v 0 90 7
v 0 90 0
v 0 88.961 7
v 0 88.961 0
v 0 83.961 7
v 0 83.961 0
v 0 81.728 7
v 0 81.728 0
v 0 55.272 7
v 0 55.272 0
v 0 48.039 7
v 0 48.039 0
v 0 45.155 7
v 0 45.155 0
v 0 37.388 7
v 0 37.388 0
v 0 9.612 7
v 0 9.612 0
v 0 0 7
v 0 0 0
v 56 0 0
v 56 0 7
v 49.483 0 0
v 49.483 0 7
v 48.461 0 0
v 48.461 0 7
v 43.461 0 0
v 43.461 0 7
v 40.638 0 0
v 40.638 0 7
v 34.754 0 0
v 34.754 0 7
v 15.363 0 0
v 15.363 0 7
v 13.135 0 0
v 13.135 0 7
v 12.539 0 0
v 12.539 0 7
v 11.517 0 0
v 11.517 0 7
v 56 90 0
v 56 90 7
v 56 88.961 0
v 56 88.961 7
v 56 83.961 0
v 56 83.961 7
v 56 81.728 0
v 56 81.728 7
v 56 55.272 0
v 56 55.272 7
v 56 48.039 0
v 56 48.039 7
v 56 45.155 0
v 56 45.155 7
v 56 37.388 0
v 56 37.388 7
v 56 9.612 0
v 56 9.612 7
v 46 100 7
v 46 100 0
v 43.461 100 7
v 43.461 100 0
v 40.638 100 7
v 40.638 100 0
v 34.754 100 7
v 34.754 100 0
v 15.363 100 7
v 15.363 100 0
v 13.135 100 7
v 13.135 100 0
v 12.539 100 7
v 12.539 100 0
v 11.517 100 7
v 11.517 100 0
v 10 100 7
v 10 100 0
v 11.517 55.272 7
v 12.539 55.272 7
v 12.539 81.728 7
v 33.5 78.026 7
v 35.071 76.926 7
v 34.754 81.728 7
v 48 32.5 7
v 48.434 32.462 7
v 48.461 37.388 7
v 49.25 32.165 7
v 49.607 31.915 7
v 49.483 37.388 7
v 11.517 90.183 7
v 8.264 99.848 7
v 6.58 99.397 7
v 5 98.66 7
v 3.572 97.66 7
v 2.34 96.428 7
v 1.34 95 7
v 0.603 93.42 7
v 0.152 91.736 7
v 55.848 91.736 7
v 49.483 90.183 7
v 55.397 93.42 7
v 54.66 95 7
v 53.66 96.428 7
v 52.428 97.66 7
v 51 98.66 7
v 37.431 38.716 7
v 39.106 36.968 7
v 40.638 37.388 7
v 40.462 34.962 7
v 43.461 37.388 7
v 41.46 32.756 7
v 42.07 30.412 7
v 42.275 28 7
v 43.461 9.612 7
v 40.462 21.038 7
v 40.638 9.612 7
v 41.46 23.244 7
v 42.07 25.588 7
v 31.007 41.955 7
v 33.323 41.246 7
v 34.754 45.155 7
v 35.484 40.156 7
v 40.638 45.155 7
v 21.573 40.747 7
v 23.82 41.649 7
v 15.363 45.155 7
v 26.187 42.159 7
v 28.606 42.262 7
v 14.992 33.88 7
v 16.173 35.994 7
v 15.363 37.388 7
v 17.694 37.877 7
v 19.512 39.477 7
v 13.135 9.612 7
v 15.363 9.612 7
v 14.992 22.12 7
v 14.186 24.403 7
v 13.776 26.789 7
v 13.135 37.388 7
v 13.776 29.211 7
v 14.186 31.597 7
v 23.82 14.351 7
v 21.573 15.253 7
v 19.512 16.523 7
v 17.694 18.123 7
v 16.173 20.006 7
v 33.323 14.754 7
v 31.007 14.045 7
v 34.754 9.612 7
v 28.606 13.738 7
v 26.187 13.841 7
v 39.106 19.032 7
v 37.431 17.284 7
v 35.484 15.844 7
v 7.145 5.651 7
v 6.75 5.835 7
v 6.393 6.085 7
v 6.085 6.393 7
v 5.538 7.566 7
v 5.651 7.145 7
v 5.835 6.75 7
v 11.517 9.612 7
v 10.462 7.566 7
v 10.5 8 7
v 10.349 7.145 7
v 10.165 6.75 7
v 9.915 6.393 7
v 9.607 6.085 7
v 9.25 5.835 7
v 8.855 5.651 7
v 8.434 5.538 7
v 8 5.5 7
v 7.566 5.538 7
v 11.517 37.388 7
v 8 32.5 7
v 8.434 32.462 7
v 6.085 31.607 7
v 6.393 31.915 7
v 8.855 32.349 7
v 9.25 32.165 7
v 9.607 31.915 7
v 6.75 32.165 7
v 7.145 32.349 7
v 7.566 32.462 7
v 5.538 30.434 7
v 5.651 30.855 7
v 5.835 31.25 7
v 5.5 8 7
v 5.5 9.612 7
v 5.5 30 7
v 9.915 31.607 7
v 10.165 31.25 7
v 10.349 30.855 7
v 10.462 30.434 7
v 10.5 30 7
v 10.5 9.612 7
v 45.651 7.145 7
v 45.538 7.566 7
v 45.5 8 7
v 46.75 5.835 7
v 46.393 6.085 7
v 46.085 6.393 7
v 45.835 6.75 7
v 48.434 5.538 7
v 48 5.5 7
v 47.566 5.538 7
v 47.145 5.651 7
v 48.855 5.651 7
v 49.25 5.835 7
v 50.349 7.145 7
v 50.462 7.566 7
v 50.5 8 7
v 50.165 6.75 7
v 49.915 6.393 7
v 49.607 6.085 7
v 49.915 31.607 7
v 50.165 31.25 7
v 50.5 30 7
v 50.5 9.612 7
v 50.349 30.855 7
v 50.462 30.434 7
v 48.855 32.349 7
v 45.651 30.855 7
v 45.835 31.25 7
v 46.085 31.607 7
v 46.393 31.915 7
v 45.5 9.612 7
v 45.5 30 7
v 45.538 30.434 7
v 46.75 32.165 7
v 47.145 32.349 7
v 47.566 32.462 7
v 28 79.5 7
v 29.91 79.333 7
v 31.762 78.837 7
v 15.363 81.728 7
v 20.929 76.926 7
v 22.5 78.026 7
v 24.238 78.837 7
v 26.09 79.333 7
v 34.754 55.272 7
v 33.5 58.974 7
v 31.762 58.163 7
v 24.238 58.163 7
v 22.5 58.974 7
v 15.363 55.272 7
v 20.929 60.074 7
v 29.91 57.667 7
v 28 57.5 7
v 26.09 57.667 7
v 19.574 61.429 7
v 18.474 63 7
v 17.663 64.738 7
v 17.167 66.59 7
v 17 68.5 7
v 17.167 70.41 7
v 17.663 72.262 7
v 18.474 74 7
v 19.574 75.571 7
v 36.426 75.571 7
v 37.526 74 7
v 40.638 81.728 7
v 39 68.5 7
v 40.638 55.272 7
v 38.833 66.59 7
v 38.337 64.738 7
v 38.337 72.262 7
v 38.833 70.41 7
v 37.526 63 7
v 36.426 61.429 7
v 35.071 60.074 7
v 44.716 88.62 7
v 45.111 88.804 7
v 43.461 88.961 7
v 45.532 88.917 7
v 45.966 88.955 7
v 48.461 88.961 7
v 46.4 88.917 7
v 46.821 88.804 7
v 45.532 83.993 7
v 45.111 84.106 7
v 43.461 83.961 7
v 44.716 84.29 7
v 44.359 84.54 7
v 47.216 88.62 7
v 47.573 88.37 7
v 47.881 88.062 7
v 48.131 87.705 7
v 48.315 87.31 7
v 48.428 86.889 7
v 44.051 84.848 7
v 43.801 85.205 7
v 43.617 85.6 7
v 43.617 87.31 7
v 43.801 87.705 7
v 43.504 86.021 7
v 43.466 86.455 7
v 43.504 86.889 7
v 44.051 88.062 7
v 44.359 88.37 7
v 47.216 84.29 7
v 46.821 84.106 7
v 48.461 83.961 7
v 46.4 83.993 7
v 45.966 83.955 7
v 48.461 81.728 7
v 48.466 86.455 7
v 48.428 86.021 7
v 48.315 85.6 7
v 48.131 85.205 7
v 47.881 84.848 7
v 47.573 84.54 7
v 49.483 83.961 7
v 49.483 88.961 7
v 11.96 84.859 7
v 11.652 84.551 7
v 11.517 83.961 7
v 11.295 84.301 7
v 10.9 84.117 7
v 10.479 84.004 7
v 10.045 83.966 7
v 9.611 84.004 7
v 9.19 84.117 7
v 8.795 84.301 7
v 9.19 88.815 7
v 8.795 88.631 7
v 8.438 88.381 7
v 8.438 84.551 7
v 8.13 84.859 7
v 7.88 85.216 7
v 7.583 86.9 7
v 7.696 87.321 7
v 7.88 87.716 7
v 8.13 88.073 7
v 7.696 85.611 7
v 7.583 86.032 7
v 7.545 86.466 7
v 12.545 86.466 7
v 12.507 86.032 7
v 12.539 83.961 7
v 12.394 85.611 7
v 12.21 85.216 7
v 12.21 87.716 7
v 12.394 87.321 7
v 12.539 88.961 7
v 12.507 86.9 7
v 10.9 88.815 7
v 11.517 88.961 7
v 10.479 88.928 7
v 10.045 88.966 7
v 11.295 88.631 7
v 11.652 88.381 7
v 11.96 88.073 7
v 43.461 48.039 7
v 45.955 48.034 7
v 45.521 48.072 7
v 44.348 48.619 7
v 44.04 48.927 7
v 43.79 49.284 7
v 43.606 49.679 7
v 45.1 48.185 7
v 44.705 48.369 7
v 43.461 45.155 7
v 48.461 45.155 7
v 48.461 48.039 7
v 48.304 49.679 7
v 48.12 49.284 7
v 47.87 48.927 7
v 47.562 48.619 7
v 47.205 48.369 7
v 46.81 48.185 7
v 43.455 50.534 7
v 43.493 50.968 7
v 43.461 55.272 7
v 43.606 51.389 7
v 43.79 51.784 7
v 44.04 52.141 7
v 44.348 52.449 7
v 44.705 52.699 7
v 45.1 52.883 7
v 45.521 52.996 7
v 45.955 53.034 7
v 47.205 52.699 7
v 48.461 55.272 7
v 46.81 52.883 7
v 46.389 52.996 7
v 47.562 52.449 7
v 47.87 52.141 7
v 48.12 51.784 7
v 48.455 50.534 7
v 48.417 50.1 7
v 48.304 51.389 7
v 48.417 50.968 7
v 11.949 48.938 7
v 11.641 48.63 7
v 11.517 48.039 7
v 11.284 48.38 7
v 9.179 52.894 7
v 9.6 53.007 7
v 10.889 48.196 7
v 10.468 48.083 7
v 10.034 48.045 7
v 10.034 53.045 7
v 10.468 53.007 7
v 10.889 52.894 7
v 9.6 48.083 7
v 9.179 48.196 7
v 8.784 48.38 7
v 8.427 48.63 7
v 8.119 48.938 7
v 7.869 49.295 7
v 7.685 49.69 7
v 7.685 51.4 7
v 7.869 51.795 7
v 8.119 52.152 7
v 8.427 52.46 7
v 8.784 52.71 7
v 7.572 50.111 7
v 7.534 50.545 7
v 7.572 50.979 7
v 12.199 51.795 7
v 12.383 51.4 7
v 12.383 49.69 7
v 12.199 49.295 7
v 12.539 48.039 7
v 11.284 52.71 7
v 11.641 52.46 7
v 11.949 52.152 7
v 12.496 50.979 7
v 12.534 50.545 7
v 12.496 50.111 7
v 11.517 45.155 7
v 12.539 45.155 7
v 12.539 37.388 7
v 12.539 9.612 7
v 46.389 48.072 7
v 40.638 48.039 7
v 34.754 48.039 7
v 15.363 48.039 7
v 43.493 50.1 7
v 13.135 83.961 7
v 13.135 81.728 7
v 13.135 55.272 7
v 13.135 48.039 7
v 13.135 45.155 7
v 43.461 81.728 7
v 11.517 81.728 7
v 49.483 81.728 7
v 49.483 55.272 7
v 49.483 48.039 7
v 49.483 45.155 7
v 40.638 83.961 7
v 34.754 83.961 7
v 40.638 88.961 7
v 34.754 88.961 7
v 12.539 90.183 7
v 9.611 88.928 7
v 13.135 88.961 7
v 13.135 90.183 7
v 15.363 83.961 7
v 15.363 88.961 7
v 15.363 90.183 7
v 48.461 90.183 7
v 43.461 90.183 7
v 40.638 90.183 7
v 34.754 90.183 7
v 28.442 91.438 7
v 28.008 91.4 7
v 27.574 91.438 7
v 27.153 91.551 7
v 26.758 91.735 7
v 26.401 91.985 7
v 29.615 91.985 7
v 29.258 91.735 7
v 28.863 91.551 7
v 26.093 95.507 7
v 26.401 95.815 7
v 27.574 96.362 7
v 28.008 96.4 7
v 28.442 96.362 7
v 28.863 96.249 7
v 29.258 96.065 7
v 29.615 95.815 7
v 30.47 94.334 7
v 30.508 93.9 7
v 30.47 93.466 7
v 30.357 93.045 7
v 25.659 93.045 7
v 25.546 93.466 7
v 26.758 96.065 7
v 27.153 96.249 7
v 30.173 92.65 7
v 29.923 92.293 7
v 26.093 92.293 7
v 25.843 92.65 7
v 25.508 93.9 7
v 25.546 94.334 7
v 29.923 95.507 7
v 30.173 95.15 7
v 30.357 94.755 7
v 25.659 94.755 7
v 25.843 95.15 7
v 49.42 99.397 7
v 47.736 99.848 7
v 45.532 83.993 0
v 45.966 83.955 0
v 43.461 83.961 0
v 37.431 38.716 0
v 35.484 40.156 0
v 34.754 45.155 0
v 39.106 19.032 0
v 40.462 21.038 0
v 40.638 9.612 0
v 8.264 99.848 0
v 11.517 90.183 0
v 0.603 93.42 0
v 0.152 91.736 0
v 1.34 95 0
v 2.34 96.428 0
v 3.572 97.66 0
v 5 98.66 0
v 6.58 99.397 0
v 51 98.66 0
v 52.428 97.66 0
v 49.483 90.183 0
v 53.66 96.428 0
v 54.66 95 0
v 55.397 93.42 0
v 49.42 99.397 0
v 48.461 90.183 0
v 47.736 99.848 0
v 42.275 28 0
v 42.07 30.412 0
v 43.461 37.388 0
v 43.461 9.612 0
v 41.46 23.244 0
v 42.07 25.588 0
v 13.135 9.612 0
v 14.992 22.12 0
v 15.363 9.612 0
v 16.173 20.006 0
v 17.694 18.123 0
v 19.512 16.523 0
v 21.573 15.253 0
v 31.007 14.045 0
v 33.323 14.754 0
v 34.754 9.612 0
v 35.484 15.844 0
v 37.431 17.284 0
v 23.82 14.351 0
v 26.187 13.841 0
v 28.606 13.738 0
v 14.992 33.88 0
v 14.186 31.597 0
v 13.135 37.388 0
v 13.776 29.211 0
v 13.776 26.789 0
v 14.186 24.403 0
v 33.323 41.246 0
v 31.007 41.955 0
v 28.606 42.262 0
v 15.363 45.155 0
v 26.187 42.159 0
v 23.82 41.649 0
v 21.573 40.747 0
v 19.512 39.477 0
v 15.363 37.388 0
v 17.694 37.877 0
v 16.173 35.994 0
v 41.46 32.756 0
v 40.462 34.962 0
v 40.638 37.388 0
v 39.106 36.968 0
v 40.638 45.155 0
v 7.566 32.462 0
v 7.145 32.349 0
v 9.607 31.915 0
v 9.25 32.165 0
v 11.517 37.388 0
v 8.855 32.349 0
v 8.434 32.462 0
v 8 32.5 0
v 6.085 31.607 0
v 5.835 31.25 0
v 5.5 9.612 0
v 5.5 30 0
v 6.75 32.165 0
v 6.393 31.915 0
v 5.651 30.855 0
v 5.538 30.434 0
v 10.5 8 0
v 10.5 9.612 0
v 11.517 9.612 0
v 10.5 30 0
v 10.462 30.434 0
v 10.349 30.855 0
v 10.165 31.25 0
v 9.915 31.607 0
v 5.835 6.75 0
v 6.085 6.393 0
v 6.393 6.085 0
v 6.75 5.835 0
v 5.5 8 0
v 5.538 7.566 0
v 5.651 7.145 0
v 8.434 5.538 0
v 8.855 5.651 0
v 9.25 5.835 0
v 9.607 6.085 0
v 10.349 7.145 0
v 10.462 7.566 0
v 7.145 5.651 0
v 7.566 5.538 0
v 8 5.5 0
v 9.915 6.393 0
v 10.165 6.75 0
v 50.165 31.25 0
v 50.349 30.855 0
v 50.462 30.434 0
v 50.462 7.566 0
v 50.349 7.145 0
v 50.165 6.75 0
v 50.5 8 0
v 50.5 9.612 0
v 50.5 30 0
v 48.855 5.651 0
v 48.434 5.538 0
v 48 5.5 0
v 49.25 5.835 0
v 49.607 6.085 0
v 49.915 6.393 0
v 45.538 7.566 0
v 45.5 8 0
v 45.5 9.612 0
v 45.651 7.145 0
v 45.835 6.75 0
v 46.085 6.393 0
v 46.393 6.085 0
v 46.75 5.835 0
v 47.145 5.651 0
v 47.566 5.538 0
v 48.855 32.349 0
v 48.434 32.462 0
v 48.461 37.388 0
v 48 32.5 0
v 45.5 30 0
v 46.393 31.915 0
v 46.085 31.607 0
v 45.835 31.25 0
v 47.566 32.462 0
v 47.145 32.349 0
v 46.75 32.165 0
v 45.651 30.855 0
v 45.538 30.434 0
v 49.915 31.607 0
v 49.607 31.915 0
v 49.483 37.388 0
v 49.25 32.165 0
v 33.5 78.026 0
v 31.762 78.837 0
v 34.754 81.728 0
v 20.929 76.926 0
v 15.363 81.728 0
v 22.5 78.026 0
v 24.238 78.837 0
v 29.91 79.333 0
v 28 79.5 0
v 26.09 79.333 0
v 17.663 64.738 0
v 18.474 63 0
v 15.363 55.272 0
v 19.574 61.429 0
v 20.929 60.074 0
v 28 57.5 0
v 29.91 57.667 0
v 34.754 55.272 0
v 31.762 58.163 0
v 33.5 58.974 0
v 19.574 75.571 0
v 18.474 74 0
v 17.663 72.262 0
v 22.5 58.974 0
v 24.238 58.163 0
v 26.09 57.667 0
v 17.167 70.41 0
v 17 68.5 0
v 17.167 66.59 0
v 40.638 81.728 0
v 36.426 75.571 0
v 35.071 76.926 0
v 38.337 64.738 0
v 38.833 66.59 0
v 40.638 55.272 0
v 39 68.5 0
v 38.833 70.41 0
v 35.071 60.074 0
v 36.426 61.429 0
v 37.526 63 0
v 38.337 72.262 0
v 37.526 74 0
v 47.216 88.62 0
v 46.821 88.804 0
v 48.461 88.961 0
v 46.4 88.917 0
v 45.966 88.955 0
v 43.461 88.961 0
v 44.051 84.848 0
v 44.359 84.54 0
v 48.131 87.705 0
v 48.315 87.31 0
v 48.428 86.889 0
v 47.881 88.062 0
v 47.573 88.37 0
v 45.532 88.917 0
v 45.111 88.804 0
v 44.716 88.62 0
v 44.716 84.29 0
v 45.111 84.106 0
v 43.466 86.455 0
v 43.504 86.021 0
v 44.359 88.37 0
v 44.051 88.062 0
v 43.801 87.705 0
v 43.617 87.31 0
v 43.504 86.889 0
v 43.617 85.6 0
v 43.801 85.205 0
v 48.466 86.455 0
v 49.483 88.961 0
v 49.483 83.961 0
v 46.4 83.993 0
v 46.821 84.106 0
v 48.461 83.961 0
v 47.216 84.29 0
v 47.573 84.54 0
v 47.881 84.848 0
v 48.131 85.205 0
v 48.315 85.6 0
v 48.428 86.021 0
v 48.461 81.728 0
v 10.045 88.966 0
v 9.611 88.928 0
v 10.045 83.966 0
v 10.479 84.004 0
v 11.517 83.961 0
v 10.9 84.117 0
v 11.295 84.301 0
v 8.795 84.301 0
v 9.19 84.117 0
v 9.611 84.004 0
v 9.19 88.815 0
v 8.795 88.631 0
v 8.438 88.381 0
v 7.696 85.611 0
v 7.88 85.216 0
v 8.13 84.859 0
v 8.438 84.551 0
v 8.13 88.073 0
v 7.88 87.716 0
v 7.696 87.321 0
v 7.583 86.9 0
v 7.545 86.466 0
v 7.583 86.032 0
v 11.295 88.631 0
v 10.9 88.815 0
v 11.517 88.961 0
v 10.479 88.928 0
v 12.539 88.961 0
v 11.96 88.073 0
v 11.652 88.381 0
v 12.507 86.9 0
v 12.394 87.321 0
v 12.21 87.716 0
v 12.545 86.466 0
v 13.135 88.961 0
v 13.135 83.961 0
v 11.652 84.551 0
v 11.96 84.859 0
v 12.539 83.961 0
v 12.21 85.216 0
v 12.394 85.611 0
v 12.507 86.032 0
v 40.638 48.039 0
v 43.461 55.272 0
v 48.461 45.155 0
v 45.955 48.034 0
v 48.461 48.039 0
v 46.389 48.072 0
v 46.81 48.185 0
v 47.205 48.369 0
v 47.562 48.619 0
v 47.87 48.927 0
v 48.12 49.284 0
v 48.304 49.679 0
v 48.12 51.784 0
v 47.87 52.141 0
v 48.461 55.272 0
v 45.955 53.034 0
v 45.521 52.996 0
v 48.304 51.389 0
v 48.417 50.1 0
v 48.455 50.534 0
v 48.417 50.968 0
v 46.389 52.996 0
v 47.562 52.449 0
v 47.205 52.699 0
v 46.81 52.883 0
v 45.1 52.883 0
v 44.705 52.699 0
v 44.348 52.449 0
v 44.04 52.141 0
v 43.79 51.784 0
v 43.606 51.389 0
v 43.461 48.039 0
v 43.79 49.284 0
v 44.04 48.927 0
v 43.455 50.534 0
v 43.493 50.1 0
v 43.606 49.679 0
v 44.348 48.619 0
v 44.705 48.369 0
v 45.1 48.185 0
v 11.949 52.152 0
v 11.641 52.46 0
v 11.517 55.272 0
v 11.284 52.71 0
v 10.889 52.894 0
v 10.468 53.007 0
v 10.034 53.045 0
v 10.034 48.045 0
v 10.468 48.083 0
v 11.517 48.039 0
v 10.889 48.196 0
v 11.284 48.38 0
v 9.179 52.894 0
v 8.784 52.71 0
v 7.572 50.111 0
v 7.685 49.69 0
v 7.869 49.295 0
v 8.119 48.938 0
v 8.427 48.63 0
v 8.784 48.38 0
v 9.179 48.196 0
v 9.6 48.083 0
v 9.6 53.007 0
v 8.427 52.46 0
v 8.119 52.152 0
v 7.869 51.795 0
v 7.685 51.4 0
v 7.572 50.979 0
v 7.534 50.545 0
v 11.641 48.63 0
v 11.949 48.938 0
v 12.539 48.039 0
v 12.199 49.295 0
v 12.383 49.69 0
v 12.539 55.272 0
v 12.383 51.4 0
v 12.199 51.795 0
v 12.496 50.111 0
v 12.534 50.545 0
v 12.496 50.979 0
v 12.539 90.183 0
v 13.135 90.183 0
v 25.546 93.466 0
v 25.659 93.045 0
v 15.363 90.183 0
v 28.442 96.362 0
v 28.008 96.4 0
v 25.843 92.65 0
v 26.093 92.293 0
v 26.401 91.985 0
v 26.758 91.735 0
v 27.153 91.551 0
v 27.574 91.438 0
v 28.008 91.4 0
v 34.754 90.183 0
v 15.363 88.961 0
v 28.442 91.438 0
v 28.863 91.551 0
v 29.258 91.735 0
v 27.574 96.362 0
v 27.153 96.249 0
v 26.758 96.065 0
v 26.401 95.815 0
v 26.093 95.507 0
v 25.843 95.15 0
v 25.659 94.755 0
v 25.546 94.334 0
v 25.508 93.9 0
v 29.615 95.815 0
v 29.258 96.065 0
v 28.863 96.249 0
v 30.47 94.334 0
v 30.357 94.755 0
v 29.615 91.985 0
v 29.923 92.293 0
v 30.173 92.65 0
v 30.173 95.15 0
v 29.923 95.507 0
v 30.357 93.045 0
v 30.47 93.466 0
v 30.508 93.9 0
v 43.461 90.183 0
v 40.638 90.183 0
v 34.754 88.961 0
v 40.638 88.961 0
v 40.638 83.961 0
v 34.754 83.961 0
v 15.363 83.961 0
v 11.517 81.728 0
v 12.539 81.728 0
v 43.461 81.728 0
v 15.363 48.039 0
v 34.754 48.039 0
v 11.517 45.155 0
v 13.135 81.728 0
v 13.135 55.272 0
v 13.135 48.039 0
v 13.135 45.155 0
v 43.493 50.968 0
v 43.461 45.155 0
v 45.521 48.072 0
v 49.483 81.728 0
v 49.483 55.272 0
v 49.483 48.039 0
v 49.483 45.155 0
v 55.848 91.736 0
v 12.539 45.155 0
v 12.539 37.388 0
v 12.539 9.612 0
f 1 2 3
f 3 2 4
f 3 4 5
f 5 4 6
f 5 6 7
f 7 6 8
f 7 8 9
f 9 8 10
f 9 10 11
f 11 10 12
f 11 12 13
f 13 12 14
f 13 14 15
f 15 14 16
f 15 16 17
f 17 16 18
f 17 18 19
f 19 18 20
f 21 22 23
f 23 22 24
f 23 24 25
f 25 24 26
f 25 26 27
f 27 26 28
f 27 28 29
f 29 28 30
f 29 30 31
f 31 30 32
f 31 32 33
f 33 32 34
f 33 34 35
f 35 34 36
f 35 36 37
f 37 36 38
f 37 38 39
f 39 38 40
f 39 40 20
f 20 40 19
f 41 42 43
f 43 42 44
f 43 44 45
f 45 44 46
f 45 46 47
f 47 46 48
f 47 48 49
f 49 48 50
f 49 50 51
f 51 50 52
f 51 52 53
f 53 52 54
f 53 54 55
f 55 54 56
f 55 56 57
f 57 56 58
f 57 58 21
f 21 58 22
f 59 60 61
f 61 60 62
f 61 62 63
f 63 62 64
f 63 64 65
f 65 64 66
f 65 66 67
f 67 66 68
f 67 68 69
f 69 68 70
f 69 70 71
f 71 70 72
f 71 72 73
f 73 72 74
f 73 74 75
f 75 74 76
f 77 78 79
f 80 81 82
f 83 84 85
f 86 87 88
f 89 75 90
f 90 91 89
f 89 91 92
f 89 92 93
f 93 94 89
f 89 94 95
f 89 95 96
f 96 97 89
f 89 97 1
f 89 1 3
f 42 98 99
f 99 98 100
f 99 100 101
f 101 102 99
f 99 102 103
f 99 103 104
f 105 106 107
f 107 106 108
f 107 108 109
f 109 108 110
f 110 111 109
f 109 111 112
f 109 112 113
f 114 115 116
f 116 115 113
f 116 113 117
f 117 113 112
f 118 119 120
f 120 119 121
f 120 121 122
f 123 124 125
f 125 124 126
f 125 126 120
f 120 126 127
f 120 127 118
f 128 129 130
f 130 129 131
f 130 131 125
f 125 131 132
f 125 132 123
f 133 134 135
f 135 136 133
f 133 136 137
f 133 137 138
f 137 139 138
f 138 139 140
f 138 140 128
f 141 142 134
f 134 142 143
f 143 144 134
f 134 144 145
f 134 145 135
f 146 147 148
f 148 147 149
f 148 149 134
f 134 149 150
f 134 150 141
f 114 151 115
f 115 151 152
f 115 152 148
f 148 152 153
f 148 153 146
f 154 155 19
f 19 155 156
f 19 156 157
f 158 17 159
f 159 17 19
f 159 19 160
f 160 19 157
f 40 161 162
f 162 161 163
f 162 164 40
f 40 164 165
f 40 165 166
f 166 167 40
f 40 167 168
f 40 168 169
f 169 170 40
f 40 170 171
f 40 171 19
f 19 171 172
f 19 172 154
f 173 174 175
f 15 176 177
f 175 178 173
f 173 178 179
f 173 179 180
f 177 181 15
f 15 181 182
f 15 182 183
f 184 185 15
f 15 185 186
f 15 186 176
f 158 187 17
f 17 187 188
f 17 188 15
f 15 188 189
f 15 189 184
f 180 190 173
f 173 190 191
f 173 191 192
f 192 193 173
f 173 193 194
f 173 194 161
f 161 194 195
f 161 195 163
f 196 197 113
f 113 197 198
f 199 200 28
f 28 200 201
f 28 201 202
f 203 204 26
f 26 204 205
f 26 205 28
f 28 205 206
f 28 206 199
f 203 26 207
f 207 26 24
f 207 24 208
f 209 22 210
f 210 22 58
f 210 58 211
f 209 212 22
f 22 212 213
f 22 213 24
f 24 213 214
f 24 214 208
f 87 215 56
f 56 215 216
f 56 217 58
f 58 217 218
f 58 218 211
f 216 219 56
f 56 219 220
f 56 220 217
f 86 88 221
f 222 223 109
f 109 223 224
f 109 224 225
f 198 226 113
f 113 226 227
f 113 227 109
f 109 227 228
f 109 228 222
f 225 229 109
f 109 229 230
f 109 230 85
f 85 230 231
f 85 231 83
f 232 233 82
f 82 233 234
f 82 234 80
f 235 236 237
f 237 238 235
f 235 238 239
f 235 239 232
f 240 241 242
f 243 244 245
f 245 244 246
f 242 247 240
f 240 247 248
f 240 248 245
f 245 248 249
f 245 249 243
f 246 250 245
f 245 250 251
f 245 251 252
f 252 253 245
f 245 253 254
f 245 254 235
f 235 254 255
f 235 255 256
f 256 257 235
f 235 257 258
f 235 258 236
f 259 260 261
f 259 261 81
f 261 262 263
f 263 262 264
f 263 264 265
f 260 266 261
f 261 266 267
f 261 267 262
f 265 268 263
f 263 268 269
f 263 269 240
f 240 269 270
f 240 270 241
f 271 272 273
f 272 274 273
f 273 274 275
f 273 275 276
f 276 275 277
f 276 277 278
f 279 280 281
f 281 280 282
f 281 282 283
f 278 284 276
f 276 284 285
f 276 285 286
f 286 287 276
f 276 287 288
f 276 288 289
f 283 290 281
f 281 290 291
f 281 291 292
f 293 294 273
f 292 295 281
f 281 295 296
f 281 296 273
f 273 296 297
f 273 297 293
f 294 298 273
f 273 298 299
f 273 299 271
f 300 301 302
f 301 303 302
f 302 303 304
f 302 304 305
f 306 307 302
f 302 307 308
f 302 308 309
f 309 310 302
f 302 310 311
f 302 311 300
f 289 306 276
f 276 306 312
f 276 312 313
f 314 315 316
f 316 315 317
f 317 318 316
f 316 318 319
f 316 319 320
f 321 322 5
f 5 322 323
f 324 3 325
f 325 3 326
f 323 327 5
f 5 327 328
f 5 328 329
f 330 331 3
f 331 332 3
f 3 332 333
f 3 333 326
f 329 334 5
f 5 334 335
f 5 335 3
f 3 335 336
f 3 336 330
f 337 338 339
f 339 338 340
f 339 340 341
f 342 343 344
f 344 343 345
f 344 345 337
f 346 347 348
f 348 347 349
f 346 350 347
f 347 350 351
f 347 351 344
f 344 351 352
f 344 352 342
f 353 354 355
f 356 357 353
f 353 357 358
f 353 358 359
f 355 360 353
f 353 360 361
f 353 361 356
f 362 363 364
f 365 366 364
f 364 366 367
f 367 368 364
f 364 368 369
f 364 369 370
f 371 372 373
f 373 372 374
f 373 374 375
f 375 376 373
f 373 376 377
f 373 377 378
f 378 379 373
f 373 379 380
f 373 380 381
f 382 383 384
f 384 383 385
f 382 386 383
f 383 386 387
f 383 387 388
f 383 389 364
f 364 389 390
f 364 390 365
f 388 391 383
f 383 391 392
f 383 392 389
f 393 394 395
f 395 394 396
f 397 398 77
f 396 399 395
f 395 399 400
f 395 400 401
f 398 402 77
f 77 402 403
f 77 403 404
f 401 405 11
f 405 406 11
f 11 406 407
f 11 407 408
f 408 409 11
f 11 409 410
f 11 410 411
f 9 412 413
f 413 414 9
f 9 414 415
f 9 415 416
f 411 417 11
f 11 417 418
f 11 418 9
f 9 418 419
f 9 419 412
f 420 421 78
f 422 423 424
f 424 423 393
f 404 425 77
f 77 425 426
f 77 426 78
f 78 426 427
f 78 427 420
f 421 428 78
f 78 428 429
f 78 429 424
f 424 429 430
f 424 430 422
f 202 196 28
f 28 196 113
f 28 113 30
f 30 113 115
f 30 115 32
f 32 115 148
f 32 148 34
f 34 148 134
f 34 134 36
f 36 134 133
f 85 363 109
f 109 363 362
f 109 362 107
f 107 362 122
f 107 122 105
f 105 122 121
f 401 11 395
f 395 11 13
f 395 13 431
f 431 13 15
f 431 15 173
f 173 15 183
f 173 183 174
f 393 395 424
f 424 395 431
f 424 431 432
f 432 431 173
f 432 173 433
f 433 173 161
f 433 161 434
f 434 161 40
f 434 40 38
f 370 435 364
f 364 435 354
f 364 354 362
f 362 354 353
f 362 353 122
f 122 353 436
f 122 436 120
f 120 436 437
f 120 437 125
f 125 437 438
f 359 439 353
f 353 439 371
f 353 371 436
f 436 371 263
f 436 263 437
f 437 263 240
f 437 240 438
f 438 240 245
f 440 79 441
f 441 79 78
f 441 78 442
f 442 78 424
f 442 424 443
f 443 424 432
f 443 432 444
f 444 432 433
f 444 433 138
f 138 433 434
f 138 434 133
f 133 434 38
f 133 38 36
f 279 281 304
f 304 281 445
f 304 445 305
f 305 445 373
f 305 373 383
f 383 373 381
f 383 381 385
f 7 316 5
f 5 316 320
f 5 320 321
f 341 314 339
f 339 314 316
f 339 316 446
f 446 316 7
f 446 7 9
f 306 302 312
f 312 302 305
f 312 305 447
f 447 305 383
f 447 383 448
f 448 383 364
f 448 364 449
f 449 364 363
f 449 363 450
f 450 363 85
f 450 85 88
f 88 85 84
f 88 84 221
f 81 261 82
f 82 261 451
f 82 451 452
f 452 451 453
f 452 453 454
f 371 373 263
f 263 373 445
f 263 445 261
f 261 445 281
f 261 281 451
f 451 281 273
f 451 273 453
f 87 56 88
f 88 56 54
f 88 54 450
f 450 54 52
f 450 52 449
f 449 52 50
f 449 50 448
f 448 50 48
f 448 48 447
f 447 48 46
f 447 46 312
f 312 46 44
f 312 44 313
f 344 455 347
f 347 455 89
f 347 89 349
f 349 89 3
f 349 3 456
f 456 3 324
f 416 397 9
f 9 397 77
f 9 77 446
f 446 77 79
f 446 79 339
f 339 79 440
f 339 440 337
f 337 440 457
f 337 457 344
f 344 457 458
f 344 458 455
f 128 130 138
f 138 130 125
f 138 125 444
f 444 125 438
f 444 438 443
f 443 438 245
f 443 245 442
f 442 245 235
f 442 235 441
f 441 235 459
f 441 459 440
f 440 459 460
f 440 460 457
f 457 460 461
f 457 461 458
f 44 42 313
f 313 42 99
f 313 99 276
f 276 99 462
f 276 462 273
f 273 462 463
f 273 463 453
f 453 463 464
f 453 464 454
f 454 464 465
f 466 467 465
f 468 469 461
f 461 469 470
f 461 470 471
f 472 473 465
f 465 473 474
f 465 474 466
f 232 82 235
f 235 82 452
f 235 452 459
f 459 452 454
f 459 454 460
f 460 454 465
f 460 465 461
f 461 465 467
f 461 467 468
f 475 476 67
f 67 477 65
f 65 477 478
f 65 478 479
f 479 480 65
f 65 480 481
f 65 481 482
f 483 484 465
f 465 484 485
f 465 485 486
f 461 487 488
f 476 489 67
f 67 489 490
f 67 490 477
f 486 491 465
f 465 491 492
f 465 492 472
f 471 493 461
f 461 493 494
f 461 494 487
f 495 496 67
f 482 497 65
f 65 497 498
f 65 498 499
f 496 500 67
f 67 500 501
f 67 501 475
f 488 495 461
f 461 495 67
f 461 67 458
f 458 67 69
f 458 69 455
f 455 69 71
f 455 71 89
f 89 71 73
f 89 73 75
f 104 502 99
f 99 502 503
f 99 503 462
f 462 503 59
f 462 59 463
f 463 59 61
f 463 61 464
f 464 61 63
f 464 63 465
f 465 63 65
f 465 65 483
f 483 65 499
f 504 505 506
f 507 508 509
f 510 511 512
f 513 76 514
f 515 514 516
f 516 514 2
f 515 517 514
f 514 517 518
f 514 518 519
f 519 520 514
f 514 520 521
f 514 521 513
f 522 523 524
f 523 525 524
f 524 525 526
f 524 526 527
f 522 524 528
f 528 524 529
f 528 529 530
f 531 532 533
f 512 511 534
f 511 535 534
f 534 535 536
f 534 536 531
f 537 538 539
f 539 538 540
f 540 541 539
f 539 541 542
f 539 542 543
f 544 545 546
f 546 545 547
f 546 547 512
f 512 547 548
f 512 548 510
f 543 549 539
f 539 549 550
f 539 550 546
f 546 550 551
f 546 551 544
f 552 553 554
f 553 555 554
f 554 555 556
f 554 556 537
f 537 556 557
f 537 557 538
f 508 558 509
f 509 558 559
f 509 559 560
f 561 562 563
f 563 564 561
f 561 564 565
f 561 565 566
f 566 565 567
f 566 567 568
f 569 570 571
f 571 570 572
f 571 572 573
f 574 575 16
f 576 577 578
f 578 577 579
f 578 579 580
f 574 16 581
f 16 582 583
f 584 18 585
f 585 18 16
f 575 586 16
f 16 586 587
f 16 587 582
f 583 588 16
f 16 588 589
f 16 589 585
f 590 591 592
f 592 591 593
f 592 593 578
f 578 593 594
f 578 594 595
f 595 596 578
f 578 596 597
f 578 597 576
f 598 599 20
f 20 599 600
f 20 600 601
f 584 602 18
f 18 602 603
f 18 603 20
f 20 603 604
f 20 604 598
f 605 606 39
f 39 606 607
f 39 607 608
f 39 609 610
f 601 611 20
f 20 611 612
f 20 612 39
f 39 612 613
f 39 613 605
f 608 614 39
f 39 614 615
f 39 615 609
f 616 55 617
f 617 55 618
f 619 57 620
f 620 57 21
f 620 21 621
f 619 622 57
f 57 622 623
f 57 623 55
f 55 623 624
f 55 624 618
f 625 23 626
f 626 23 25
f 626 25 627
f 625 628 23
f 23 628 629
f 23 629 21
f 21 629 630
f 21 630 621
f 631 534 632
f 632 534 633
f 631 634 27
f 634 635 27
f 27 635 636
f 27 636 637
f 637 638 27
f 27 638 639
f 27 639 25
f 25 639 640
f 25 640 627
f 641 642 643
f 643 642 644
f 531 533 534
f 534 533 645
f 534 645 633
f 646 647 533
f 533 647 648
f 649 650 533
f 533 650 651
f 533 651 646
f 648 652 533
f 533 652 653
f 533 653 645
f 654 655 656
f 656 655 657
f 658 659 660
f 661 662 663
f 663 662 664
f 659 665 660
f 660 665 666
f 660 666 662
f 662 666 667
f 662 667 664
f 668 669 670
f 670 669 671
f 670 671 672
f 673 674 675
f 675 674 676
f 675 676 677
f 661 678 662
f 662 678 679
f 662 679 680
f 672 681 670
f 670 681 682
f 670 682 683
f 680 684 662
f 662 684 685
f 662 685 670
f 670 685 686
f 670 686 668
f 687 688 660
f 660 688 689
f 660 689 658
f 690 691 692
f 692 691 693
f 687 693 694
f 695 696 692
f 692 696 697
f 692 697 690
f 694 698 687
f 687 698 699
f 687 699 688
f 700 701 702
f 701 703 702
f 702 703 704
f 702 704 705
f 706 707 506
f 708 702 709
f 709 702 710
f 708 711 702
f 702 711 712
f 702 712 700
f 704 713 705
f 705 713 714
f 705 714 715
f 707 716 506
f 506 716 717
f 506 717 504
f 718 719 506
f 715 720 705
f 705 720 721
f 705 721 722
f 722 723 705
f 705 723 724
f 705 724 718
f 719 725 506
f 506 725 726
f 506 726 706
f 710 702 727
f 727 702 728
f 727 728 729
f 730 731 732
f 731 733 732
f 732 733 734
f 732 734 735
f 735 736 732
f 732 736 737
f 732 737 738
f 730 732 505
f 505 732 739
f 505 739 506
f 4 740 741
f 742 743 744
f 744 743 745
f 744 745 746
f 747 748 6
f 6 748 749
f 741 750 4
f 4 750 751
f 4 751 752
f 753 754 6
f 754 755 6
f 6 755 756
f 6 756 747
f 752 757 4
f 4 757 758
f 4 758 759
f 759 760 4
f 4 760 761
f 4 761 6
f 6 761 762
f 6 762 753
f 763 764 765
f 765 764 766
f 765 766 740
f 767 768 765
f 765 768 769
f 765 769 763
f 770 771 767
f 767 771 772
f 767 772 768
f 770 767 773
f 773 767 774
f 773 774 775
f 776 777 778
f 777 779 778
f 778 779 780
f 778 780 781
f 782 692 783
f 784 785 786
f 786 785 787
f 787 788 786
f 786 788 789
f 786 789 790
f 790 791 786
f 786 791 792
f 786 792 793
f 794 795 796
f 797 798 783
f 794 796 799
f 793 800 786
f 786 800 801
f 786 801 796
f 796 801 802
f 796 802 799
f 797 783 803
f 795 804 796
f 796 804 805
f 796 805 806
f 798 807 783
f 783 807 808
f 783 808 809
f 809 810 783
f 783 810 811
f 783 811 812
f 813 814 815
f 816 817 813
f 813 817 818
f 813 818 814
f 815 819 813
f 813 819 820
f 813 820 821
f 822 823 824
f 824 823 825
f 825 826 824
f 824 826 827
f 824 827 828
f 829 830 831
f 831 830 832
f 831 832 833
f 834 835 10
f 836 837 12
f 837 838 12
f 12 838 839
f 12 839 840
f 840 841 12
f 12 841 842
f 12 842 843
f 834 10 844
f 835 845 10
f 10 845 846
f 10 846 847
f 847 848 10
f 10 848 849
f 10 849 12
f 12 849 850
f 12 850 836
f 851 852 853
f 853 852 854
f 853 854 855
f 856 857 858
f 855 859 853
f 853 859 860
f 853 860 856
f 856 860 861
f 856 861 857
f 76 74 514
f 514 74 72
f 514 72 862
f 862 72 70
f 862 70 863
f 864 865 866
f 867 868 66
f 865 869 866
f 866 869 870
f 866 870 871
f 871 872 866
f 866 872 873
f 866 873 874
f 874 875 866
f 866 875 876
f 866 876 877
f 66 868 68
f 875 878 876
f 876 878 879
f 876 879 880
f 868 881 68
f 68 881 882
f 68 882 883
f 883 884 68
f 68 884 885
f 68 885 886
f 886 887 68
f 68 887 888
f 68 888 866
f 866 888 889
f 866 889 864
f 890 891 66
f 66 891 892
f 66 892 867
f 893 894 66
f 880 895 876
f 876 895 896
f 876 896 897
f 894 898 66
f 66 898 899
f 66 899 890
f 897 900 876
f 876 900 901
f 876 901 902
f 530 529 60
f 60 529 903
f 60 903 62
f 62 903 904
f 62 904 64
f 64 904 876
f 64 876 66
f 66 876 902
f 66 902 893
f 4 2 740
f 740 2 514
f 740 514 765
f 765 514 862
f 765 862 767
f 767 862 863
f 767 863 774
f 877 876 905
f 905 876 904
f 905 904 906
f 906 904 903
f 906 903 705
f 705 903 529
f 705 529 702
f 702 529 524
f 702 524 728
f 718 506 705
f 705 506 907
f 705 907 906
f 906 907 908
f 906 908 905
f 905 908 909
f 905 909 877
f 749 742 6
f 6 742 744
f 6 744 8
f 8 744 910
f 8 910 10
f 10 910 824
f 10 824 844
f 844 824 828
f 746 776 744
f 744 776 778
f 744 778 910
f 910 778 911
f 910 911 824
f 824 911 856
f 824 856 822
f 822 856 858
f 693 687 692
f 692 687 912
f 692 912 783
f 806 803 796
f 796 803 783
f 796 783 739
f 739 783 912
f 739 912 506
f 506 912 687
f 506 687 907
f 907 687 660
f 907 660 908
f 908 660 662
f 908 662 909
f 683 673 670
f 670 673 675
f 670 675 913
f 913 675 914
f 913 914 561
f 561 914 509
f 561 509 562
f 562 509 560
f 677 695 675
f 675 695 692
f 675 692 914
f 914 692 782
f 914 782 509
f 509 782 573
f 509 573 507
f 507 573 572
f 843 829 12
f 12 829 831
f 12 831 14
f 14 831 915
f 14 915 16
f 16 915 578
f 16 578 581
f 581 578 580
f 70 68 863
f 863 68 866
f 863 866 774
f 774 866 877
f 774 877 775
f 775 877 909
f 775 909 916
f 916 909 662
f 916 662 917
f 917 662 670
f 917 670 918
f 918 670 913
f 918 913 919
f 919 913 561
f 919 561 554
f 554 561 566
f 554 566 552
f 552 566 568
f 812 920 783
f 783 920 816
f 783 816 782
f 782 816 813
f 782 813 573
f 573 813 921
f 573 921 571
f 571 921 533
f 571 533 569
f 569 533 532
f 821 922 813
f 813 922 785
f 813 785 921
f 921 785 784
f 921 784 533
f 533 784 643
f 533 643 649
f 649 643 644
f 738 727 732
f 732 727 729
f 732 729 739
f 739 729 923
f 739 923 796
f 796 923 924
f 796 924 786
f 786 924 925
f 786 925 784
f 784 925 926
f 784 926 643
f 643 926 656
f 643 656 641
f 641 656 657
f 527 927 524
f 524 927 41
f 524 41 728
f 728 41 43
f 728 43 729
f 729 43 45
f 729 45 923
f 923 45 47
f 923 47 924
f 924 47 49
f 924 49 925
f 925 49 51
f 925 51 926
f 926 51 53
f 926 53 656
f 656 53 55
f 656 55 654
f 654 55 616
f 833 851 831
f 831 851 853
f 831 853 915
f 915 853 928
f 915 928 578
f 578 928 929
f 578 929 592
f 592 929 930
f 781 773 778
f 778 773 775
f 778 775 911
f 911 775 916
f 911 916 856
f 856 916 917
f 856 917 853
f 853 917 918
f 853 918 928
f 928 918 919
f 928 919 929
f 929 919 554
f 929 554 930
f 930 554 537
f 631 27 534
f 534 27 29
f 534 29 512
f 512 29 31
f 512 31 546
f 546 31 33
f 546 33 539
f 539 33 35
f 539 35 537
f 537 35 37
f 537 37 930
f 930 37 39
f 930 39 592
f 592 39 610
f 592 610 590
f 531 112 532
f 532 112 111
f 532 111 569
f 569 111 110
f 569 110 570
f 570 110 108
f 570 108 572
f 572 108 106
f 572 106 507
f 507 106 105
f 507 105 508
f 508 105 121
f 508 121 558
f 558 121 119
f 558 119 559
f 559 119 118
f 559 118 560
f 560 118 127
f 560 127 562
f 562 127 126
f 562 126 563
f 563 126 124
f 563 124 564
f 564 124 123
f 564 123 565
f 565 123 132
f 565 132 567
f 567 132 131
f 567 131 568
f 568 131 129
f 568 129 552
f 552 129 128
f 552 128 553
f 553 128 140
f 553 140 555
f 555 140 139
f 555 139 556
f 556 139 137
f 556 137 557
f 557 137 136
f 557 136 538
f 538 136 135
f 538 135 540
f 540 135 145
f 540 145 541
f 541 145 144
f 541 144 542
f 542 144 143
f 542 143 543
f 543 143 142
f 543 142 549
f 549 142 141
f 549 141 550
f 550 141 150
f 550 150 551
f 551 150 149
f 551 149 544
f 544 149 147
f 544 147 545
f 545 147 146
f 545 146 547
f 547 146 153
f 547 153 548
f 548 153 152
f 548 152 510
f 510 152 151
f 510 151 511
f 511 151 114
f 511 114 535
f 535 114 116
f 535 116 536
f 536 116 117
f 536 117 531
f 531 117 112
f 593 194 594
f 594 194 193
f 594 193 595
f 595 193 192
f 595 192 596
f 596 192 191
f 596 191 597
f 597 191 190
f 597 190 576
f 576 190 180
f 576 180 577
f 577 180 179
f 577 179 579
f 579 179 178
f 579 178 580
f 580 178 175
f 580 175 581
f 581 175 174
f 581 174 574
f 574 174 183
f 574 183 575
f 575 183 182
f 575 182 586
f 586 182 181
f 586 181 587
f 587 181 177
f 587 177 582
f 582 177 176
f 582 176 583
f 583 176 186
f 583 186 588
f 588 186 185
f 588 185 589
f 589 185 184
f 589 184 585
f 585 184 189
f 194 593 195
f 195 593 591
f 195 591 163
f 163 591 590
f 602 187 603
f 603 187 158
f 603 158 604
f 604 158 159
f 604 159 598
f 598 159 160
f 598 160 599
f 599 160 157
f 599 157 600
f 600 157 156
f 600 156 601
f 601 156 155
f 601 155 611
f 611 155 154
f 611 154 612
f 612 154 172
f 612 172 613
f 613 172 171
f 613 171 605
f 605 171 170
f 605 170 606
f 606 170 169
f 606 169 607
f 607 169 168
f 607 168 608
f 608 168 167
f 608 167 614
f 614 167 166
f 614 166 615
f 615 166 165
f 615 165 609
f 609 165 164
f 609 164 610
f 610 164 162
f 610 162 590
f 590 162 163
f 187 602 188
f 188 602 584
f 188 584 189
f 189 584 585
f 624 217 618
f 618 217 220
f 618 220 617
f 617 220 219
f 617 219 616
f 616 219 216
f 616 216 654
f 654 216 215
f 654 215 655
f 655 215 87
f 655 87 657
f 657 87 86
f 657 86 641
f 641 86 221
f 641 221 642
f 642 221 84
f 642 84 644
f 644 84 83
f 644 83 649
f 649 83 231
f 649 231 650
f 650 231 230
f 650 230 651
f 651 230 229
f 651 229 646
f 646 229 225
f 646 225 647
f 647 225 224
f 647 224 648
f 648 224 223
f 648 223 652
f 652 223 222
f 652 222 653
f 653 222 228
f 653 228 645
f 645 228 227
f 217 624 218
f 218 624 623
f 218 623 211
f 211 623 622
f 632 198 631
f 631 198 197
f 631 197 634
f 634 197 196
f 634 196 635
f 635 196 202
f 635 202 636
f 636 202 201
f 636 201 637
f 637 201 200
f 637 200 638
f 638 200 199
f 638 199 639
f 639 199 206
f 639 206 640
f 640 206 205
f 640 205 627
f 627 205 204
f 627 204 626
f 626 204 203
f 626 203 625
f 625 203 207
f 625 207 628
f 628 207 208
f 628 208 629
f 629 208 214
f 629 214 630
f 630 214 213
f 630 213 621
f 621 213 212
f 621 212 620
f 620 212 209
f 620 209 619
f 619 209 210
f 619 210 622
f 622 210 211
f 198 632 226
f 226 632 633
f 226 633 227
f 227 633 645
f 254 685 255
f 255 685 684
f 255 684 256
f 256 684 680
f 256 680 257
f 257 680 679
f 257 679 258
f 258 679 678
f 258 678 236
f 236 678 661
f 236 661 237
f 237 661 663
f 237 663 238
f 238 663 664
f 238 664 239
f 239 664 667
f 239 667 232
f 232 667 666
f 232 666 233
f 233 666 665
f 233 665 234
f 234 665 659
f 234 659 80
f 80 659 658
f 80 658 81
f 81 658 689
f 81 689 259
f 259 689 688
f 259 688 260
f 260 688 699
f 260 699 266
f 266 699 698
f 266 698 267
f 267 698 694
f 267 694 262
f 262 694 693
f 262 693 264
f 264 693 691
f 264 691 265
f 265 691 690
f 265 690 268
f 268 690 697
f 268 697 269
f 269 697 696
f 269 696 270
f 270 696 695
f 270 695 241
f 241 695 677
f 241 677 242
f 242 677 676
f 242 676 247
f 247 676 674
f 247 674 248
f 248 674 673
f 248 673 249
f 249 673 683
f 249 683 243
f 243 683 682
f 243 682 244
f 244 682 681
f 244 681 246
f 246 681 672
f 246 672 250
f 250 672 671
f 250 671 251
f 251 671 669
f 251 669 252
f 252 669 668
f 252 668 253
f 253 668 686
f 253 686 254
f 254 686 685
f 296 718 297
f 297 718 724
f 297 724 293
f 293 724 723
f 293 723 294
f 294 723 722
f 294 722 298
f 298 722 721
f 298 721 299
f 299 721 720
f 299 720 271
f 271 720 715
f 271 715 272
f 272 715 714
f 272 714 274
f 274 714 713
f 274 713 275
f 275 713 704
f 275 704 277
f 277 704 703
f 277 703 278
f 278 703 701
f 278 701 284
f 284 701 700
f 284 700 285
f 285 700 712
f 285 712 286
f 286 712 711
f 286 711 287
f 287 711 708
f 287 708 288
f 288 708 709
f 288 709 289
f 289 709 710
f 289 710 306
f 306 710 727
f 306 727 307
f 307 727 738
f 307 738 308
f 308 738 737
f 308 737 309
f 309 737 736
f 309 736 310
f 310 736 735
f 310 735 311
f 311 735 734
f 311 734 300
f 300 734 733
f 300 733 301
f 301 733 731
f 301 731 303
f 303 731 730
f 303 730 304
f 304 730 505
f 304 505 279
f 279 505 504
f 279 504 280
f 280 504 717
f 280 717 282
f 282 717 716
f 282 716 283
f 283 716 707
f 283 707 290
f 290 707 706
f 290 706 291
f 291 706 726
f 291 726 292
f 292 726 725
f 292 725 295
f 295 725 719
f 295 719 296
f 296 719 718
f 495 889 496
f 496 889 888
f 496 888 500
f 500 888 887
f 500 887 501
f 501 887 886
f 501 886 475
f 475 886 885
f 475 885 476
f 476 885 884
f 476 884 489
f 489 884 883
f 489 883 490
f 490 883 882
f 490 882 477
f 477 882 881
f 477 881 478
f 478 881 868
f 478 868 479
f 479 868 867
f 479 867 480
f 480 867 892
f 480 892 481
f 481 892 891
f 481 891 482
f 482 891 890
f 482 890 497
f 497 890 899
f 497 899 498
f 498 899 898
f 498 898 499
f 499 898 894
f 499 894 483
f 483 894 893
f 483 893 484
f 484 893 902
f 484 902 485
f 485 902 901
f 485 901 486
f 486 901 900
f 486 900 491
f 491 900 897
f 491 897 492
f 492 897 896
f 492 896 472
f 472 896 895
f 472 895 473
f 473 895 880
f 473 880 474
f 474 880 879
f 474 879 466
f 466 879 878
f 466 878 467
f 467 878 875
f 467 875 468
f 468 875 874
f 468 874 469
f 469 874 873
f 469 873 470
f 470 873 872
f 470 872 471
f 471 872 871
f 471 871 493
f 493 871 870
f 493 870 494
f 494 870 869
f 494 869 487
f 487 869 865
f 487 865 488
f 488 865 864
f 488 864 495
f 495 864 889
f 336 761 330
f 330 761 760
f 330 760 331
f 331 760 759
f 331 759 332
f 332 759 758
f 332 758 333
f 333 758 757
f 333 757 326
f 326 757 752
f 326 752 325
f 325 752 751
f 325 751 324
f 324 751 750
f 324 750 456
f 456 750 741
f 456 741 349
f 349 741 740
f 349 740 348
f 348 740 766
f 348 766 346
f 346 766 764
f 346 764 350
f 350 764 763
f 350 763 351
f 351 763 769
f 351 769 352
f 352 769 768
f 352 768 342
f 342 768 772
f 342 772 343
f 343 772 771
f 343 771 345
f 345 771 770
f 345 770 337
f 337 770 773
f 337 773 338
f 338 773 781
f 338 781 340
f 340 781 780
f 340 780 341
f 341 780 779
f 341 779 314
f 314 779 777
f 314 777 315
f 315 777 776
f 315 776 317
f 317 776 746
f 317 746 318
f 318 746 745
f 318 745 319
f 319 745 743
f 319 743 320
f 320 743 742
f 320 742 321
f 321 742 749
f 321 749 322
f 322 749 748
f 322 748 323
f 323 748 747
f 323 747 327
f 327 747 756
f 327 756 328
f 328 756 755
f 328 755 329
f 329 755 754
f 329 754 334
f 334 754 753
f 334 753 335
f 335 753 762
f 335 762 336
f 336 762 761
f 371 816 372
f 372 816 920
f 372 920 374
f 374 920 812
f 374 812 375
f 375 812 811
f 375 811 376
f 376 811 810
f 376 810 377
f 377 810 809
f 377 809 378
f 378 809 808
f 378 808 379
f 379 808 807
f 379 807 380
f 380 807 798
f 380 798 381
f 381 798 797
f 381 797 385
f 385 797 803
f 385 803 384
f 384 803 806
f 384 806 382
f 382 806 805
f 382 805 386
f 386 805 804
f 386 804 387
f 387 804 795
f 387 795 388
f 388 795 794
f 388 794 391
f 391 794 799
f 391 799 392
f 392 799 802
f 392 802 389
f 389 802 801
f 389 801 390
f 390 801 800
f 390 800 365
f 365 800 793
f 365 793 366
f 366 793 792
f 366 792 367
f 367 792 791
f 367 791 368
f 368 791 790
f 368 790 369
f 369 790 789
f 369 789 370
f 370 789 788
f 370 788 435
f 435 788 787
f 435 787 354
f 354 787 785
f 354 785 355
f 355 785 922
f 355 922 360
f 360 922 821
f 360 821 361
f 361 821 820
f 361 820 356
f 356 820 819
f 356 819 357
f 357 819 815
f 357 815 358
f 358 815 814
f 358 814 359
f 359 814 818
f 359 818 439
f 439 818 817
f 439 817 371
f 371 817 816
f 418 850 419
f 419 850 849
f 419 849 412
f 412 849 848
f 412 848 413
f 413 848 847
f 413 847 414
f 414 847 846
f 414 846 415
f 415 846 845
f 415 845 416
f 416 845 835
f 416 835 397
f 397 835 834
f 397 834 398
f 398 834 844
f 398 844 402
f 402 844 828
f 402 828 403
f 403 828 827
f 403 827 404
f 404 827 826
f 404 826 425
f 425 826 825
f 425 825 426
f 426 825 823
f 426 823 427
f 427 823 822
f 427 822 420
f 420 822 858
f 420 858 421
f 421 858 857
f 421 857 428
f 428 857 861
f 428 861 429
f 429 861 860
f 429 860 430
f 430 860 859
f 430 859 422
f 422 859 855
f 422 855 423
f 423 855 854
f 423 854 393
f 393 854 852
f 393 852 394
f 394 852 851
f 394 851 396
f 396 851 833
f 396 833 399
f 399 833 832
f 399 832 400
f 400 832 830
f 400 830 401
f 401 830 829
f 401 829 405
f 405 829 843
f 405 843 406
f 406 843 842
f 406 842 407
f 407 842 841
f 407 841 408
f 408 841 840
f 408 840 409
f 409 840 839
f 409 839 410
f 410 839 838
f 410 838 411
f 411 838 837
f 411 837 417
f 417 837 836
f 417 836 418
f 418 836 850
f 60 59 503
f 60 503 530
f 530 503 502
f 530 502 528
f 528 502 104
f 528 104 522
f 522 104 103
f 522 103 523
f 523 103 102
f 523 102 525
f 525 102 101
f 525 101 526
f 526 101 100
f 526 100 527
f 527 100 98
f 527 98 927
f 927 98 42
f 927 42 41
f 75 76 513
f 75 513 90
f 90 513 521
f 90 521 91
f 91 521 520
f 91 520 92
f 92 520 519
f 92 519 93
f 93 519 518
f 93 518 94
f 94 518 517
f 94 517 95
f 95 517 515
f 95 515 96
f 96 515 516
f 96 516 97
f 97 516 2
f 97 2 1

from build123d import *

# Parameters (mm, degrees)
SKETCH1_W           = 56
SKETCH1_H           = 100
BOSS_EXTRUDE1_DEPTH = 7
SKETCH2_R           = 14.275
CUT_EXTRUDE1_DEPTH  = 8
SKETCH3_R           = 11
CUT_EXTRUDE2_DEPTH  = 10
SKETCH4_R           = 2.5
CUT_EXTRUDE3_DEPTH  = 8
FILLET1_R           = 10


with BuildPart() as part:
    # Sketch1 → Boss-Extrude1 (new body)
    with BuildSketch(Plane.XY):
        with Locations((28, 50)):
            Rectangle(SKETCH1_W, SKETCH1_H)
    extrude(amount=BOSS_EXTRUDE1_DEPTH)

    # Sketch2 → Cut-Extrude1 (cut, through all)
    with BuildSketch(Plane.XY.offset(7)):
        with Locations((28, 28)):
            Circle(SKETCH2_R)
        with BuildLine():
            Line((10.5, 30), (10.5, 8))
            ThreePointArc((10.5, 8), (8, 5.5), (5.5, 8))
            Line((5.5, 8), (5.5, 30))
            ThreePointArc((5.5, 30), (8, 32.5), (10.5, 30))
        make_face()
        with BuildLine():
            Line((50.5, 30), (50.5, 8))
            ThreePointArc((50.5, 8), (48, 5.5), (45.5, 8))
            Line((45.5, 8), (45.5, 30))
            ThreePointArc((45.5, 30), (48, 32.5), (50.5, 30))
        make_face()
    extrude(amount=-CUT_EXTRUDE1_DEPTH, mode=Mode.SUBTRACT)

    # Sketch3 → Cut-Extrude2 (cut)
    with BuildSketch(Plane(origin=(0, 0, 0), x_dir=(-1, 0, 0), z_dir=(0, 0, -1))):
        with Locations((-28, 68.5)):
            Circle(SKETCH3_R)
    extrude(amount=-CUT_EXTRUDE2_DEPTH, mode=Mode.SUBTRACT)

    # Sketch4 → Cut-Extrude3 (cut, through all)
    with BuildSketch(Plane(origin=(0, 0, 0), x_dir=(-1, 0, 0), z_dir=(0, 0, -1))):
        with Locations((-45.965981938, 86.45504088)):
            Circle(SKETCH4_R)
        with Locations((-28.007736497, 93.899998822)):
            Circle(SKETCH4_R)
        with Locations((-10.04495912, 86.465981938)):
            Circle(SKETCH4_R)
        with Locations((-45.95504088, 50.534018062)):
            Circle(SKETCH4_R)
        with Locations((-10.034018062, 50.54495912)):
            Circle(SKETCH4_R)
    extrude(amount=-CUT_EXTRUDE3_DEPTH, mode=Mode.SUBTRACT)

    # Fillet1
    fillet1_edges = [part.edges().sort_by_distance(p)[0] for p in [
        (56, 100, 3.5),
        (0, 100, 3.5),
    ]]
    fillet(fillet1_edges, radius=FILLET1_R)


solid = part.part
